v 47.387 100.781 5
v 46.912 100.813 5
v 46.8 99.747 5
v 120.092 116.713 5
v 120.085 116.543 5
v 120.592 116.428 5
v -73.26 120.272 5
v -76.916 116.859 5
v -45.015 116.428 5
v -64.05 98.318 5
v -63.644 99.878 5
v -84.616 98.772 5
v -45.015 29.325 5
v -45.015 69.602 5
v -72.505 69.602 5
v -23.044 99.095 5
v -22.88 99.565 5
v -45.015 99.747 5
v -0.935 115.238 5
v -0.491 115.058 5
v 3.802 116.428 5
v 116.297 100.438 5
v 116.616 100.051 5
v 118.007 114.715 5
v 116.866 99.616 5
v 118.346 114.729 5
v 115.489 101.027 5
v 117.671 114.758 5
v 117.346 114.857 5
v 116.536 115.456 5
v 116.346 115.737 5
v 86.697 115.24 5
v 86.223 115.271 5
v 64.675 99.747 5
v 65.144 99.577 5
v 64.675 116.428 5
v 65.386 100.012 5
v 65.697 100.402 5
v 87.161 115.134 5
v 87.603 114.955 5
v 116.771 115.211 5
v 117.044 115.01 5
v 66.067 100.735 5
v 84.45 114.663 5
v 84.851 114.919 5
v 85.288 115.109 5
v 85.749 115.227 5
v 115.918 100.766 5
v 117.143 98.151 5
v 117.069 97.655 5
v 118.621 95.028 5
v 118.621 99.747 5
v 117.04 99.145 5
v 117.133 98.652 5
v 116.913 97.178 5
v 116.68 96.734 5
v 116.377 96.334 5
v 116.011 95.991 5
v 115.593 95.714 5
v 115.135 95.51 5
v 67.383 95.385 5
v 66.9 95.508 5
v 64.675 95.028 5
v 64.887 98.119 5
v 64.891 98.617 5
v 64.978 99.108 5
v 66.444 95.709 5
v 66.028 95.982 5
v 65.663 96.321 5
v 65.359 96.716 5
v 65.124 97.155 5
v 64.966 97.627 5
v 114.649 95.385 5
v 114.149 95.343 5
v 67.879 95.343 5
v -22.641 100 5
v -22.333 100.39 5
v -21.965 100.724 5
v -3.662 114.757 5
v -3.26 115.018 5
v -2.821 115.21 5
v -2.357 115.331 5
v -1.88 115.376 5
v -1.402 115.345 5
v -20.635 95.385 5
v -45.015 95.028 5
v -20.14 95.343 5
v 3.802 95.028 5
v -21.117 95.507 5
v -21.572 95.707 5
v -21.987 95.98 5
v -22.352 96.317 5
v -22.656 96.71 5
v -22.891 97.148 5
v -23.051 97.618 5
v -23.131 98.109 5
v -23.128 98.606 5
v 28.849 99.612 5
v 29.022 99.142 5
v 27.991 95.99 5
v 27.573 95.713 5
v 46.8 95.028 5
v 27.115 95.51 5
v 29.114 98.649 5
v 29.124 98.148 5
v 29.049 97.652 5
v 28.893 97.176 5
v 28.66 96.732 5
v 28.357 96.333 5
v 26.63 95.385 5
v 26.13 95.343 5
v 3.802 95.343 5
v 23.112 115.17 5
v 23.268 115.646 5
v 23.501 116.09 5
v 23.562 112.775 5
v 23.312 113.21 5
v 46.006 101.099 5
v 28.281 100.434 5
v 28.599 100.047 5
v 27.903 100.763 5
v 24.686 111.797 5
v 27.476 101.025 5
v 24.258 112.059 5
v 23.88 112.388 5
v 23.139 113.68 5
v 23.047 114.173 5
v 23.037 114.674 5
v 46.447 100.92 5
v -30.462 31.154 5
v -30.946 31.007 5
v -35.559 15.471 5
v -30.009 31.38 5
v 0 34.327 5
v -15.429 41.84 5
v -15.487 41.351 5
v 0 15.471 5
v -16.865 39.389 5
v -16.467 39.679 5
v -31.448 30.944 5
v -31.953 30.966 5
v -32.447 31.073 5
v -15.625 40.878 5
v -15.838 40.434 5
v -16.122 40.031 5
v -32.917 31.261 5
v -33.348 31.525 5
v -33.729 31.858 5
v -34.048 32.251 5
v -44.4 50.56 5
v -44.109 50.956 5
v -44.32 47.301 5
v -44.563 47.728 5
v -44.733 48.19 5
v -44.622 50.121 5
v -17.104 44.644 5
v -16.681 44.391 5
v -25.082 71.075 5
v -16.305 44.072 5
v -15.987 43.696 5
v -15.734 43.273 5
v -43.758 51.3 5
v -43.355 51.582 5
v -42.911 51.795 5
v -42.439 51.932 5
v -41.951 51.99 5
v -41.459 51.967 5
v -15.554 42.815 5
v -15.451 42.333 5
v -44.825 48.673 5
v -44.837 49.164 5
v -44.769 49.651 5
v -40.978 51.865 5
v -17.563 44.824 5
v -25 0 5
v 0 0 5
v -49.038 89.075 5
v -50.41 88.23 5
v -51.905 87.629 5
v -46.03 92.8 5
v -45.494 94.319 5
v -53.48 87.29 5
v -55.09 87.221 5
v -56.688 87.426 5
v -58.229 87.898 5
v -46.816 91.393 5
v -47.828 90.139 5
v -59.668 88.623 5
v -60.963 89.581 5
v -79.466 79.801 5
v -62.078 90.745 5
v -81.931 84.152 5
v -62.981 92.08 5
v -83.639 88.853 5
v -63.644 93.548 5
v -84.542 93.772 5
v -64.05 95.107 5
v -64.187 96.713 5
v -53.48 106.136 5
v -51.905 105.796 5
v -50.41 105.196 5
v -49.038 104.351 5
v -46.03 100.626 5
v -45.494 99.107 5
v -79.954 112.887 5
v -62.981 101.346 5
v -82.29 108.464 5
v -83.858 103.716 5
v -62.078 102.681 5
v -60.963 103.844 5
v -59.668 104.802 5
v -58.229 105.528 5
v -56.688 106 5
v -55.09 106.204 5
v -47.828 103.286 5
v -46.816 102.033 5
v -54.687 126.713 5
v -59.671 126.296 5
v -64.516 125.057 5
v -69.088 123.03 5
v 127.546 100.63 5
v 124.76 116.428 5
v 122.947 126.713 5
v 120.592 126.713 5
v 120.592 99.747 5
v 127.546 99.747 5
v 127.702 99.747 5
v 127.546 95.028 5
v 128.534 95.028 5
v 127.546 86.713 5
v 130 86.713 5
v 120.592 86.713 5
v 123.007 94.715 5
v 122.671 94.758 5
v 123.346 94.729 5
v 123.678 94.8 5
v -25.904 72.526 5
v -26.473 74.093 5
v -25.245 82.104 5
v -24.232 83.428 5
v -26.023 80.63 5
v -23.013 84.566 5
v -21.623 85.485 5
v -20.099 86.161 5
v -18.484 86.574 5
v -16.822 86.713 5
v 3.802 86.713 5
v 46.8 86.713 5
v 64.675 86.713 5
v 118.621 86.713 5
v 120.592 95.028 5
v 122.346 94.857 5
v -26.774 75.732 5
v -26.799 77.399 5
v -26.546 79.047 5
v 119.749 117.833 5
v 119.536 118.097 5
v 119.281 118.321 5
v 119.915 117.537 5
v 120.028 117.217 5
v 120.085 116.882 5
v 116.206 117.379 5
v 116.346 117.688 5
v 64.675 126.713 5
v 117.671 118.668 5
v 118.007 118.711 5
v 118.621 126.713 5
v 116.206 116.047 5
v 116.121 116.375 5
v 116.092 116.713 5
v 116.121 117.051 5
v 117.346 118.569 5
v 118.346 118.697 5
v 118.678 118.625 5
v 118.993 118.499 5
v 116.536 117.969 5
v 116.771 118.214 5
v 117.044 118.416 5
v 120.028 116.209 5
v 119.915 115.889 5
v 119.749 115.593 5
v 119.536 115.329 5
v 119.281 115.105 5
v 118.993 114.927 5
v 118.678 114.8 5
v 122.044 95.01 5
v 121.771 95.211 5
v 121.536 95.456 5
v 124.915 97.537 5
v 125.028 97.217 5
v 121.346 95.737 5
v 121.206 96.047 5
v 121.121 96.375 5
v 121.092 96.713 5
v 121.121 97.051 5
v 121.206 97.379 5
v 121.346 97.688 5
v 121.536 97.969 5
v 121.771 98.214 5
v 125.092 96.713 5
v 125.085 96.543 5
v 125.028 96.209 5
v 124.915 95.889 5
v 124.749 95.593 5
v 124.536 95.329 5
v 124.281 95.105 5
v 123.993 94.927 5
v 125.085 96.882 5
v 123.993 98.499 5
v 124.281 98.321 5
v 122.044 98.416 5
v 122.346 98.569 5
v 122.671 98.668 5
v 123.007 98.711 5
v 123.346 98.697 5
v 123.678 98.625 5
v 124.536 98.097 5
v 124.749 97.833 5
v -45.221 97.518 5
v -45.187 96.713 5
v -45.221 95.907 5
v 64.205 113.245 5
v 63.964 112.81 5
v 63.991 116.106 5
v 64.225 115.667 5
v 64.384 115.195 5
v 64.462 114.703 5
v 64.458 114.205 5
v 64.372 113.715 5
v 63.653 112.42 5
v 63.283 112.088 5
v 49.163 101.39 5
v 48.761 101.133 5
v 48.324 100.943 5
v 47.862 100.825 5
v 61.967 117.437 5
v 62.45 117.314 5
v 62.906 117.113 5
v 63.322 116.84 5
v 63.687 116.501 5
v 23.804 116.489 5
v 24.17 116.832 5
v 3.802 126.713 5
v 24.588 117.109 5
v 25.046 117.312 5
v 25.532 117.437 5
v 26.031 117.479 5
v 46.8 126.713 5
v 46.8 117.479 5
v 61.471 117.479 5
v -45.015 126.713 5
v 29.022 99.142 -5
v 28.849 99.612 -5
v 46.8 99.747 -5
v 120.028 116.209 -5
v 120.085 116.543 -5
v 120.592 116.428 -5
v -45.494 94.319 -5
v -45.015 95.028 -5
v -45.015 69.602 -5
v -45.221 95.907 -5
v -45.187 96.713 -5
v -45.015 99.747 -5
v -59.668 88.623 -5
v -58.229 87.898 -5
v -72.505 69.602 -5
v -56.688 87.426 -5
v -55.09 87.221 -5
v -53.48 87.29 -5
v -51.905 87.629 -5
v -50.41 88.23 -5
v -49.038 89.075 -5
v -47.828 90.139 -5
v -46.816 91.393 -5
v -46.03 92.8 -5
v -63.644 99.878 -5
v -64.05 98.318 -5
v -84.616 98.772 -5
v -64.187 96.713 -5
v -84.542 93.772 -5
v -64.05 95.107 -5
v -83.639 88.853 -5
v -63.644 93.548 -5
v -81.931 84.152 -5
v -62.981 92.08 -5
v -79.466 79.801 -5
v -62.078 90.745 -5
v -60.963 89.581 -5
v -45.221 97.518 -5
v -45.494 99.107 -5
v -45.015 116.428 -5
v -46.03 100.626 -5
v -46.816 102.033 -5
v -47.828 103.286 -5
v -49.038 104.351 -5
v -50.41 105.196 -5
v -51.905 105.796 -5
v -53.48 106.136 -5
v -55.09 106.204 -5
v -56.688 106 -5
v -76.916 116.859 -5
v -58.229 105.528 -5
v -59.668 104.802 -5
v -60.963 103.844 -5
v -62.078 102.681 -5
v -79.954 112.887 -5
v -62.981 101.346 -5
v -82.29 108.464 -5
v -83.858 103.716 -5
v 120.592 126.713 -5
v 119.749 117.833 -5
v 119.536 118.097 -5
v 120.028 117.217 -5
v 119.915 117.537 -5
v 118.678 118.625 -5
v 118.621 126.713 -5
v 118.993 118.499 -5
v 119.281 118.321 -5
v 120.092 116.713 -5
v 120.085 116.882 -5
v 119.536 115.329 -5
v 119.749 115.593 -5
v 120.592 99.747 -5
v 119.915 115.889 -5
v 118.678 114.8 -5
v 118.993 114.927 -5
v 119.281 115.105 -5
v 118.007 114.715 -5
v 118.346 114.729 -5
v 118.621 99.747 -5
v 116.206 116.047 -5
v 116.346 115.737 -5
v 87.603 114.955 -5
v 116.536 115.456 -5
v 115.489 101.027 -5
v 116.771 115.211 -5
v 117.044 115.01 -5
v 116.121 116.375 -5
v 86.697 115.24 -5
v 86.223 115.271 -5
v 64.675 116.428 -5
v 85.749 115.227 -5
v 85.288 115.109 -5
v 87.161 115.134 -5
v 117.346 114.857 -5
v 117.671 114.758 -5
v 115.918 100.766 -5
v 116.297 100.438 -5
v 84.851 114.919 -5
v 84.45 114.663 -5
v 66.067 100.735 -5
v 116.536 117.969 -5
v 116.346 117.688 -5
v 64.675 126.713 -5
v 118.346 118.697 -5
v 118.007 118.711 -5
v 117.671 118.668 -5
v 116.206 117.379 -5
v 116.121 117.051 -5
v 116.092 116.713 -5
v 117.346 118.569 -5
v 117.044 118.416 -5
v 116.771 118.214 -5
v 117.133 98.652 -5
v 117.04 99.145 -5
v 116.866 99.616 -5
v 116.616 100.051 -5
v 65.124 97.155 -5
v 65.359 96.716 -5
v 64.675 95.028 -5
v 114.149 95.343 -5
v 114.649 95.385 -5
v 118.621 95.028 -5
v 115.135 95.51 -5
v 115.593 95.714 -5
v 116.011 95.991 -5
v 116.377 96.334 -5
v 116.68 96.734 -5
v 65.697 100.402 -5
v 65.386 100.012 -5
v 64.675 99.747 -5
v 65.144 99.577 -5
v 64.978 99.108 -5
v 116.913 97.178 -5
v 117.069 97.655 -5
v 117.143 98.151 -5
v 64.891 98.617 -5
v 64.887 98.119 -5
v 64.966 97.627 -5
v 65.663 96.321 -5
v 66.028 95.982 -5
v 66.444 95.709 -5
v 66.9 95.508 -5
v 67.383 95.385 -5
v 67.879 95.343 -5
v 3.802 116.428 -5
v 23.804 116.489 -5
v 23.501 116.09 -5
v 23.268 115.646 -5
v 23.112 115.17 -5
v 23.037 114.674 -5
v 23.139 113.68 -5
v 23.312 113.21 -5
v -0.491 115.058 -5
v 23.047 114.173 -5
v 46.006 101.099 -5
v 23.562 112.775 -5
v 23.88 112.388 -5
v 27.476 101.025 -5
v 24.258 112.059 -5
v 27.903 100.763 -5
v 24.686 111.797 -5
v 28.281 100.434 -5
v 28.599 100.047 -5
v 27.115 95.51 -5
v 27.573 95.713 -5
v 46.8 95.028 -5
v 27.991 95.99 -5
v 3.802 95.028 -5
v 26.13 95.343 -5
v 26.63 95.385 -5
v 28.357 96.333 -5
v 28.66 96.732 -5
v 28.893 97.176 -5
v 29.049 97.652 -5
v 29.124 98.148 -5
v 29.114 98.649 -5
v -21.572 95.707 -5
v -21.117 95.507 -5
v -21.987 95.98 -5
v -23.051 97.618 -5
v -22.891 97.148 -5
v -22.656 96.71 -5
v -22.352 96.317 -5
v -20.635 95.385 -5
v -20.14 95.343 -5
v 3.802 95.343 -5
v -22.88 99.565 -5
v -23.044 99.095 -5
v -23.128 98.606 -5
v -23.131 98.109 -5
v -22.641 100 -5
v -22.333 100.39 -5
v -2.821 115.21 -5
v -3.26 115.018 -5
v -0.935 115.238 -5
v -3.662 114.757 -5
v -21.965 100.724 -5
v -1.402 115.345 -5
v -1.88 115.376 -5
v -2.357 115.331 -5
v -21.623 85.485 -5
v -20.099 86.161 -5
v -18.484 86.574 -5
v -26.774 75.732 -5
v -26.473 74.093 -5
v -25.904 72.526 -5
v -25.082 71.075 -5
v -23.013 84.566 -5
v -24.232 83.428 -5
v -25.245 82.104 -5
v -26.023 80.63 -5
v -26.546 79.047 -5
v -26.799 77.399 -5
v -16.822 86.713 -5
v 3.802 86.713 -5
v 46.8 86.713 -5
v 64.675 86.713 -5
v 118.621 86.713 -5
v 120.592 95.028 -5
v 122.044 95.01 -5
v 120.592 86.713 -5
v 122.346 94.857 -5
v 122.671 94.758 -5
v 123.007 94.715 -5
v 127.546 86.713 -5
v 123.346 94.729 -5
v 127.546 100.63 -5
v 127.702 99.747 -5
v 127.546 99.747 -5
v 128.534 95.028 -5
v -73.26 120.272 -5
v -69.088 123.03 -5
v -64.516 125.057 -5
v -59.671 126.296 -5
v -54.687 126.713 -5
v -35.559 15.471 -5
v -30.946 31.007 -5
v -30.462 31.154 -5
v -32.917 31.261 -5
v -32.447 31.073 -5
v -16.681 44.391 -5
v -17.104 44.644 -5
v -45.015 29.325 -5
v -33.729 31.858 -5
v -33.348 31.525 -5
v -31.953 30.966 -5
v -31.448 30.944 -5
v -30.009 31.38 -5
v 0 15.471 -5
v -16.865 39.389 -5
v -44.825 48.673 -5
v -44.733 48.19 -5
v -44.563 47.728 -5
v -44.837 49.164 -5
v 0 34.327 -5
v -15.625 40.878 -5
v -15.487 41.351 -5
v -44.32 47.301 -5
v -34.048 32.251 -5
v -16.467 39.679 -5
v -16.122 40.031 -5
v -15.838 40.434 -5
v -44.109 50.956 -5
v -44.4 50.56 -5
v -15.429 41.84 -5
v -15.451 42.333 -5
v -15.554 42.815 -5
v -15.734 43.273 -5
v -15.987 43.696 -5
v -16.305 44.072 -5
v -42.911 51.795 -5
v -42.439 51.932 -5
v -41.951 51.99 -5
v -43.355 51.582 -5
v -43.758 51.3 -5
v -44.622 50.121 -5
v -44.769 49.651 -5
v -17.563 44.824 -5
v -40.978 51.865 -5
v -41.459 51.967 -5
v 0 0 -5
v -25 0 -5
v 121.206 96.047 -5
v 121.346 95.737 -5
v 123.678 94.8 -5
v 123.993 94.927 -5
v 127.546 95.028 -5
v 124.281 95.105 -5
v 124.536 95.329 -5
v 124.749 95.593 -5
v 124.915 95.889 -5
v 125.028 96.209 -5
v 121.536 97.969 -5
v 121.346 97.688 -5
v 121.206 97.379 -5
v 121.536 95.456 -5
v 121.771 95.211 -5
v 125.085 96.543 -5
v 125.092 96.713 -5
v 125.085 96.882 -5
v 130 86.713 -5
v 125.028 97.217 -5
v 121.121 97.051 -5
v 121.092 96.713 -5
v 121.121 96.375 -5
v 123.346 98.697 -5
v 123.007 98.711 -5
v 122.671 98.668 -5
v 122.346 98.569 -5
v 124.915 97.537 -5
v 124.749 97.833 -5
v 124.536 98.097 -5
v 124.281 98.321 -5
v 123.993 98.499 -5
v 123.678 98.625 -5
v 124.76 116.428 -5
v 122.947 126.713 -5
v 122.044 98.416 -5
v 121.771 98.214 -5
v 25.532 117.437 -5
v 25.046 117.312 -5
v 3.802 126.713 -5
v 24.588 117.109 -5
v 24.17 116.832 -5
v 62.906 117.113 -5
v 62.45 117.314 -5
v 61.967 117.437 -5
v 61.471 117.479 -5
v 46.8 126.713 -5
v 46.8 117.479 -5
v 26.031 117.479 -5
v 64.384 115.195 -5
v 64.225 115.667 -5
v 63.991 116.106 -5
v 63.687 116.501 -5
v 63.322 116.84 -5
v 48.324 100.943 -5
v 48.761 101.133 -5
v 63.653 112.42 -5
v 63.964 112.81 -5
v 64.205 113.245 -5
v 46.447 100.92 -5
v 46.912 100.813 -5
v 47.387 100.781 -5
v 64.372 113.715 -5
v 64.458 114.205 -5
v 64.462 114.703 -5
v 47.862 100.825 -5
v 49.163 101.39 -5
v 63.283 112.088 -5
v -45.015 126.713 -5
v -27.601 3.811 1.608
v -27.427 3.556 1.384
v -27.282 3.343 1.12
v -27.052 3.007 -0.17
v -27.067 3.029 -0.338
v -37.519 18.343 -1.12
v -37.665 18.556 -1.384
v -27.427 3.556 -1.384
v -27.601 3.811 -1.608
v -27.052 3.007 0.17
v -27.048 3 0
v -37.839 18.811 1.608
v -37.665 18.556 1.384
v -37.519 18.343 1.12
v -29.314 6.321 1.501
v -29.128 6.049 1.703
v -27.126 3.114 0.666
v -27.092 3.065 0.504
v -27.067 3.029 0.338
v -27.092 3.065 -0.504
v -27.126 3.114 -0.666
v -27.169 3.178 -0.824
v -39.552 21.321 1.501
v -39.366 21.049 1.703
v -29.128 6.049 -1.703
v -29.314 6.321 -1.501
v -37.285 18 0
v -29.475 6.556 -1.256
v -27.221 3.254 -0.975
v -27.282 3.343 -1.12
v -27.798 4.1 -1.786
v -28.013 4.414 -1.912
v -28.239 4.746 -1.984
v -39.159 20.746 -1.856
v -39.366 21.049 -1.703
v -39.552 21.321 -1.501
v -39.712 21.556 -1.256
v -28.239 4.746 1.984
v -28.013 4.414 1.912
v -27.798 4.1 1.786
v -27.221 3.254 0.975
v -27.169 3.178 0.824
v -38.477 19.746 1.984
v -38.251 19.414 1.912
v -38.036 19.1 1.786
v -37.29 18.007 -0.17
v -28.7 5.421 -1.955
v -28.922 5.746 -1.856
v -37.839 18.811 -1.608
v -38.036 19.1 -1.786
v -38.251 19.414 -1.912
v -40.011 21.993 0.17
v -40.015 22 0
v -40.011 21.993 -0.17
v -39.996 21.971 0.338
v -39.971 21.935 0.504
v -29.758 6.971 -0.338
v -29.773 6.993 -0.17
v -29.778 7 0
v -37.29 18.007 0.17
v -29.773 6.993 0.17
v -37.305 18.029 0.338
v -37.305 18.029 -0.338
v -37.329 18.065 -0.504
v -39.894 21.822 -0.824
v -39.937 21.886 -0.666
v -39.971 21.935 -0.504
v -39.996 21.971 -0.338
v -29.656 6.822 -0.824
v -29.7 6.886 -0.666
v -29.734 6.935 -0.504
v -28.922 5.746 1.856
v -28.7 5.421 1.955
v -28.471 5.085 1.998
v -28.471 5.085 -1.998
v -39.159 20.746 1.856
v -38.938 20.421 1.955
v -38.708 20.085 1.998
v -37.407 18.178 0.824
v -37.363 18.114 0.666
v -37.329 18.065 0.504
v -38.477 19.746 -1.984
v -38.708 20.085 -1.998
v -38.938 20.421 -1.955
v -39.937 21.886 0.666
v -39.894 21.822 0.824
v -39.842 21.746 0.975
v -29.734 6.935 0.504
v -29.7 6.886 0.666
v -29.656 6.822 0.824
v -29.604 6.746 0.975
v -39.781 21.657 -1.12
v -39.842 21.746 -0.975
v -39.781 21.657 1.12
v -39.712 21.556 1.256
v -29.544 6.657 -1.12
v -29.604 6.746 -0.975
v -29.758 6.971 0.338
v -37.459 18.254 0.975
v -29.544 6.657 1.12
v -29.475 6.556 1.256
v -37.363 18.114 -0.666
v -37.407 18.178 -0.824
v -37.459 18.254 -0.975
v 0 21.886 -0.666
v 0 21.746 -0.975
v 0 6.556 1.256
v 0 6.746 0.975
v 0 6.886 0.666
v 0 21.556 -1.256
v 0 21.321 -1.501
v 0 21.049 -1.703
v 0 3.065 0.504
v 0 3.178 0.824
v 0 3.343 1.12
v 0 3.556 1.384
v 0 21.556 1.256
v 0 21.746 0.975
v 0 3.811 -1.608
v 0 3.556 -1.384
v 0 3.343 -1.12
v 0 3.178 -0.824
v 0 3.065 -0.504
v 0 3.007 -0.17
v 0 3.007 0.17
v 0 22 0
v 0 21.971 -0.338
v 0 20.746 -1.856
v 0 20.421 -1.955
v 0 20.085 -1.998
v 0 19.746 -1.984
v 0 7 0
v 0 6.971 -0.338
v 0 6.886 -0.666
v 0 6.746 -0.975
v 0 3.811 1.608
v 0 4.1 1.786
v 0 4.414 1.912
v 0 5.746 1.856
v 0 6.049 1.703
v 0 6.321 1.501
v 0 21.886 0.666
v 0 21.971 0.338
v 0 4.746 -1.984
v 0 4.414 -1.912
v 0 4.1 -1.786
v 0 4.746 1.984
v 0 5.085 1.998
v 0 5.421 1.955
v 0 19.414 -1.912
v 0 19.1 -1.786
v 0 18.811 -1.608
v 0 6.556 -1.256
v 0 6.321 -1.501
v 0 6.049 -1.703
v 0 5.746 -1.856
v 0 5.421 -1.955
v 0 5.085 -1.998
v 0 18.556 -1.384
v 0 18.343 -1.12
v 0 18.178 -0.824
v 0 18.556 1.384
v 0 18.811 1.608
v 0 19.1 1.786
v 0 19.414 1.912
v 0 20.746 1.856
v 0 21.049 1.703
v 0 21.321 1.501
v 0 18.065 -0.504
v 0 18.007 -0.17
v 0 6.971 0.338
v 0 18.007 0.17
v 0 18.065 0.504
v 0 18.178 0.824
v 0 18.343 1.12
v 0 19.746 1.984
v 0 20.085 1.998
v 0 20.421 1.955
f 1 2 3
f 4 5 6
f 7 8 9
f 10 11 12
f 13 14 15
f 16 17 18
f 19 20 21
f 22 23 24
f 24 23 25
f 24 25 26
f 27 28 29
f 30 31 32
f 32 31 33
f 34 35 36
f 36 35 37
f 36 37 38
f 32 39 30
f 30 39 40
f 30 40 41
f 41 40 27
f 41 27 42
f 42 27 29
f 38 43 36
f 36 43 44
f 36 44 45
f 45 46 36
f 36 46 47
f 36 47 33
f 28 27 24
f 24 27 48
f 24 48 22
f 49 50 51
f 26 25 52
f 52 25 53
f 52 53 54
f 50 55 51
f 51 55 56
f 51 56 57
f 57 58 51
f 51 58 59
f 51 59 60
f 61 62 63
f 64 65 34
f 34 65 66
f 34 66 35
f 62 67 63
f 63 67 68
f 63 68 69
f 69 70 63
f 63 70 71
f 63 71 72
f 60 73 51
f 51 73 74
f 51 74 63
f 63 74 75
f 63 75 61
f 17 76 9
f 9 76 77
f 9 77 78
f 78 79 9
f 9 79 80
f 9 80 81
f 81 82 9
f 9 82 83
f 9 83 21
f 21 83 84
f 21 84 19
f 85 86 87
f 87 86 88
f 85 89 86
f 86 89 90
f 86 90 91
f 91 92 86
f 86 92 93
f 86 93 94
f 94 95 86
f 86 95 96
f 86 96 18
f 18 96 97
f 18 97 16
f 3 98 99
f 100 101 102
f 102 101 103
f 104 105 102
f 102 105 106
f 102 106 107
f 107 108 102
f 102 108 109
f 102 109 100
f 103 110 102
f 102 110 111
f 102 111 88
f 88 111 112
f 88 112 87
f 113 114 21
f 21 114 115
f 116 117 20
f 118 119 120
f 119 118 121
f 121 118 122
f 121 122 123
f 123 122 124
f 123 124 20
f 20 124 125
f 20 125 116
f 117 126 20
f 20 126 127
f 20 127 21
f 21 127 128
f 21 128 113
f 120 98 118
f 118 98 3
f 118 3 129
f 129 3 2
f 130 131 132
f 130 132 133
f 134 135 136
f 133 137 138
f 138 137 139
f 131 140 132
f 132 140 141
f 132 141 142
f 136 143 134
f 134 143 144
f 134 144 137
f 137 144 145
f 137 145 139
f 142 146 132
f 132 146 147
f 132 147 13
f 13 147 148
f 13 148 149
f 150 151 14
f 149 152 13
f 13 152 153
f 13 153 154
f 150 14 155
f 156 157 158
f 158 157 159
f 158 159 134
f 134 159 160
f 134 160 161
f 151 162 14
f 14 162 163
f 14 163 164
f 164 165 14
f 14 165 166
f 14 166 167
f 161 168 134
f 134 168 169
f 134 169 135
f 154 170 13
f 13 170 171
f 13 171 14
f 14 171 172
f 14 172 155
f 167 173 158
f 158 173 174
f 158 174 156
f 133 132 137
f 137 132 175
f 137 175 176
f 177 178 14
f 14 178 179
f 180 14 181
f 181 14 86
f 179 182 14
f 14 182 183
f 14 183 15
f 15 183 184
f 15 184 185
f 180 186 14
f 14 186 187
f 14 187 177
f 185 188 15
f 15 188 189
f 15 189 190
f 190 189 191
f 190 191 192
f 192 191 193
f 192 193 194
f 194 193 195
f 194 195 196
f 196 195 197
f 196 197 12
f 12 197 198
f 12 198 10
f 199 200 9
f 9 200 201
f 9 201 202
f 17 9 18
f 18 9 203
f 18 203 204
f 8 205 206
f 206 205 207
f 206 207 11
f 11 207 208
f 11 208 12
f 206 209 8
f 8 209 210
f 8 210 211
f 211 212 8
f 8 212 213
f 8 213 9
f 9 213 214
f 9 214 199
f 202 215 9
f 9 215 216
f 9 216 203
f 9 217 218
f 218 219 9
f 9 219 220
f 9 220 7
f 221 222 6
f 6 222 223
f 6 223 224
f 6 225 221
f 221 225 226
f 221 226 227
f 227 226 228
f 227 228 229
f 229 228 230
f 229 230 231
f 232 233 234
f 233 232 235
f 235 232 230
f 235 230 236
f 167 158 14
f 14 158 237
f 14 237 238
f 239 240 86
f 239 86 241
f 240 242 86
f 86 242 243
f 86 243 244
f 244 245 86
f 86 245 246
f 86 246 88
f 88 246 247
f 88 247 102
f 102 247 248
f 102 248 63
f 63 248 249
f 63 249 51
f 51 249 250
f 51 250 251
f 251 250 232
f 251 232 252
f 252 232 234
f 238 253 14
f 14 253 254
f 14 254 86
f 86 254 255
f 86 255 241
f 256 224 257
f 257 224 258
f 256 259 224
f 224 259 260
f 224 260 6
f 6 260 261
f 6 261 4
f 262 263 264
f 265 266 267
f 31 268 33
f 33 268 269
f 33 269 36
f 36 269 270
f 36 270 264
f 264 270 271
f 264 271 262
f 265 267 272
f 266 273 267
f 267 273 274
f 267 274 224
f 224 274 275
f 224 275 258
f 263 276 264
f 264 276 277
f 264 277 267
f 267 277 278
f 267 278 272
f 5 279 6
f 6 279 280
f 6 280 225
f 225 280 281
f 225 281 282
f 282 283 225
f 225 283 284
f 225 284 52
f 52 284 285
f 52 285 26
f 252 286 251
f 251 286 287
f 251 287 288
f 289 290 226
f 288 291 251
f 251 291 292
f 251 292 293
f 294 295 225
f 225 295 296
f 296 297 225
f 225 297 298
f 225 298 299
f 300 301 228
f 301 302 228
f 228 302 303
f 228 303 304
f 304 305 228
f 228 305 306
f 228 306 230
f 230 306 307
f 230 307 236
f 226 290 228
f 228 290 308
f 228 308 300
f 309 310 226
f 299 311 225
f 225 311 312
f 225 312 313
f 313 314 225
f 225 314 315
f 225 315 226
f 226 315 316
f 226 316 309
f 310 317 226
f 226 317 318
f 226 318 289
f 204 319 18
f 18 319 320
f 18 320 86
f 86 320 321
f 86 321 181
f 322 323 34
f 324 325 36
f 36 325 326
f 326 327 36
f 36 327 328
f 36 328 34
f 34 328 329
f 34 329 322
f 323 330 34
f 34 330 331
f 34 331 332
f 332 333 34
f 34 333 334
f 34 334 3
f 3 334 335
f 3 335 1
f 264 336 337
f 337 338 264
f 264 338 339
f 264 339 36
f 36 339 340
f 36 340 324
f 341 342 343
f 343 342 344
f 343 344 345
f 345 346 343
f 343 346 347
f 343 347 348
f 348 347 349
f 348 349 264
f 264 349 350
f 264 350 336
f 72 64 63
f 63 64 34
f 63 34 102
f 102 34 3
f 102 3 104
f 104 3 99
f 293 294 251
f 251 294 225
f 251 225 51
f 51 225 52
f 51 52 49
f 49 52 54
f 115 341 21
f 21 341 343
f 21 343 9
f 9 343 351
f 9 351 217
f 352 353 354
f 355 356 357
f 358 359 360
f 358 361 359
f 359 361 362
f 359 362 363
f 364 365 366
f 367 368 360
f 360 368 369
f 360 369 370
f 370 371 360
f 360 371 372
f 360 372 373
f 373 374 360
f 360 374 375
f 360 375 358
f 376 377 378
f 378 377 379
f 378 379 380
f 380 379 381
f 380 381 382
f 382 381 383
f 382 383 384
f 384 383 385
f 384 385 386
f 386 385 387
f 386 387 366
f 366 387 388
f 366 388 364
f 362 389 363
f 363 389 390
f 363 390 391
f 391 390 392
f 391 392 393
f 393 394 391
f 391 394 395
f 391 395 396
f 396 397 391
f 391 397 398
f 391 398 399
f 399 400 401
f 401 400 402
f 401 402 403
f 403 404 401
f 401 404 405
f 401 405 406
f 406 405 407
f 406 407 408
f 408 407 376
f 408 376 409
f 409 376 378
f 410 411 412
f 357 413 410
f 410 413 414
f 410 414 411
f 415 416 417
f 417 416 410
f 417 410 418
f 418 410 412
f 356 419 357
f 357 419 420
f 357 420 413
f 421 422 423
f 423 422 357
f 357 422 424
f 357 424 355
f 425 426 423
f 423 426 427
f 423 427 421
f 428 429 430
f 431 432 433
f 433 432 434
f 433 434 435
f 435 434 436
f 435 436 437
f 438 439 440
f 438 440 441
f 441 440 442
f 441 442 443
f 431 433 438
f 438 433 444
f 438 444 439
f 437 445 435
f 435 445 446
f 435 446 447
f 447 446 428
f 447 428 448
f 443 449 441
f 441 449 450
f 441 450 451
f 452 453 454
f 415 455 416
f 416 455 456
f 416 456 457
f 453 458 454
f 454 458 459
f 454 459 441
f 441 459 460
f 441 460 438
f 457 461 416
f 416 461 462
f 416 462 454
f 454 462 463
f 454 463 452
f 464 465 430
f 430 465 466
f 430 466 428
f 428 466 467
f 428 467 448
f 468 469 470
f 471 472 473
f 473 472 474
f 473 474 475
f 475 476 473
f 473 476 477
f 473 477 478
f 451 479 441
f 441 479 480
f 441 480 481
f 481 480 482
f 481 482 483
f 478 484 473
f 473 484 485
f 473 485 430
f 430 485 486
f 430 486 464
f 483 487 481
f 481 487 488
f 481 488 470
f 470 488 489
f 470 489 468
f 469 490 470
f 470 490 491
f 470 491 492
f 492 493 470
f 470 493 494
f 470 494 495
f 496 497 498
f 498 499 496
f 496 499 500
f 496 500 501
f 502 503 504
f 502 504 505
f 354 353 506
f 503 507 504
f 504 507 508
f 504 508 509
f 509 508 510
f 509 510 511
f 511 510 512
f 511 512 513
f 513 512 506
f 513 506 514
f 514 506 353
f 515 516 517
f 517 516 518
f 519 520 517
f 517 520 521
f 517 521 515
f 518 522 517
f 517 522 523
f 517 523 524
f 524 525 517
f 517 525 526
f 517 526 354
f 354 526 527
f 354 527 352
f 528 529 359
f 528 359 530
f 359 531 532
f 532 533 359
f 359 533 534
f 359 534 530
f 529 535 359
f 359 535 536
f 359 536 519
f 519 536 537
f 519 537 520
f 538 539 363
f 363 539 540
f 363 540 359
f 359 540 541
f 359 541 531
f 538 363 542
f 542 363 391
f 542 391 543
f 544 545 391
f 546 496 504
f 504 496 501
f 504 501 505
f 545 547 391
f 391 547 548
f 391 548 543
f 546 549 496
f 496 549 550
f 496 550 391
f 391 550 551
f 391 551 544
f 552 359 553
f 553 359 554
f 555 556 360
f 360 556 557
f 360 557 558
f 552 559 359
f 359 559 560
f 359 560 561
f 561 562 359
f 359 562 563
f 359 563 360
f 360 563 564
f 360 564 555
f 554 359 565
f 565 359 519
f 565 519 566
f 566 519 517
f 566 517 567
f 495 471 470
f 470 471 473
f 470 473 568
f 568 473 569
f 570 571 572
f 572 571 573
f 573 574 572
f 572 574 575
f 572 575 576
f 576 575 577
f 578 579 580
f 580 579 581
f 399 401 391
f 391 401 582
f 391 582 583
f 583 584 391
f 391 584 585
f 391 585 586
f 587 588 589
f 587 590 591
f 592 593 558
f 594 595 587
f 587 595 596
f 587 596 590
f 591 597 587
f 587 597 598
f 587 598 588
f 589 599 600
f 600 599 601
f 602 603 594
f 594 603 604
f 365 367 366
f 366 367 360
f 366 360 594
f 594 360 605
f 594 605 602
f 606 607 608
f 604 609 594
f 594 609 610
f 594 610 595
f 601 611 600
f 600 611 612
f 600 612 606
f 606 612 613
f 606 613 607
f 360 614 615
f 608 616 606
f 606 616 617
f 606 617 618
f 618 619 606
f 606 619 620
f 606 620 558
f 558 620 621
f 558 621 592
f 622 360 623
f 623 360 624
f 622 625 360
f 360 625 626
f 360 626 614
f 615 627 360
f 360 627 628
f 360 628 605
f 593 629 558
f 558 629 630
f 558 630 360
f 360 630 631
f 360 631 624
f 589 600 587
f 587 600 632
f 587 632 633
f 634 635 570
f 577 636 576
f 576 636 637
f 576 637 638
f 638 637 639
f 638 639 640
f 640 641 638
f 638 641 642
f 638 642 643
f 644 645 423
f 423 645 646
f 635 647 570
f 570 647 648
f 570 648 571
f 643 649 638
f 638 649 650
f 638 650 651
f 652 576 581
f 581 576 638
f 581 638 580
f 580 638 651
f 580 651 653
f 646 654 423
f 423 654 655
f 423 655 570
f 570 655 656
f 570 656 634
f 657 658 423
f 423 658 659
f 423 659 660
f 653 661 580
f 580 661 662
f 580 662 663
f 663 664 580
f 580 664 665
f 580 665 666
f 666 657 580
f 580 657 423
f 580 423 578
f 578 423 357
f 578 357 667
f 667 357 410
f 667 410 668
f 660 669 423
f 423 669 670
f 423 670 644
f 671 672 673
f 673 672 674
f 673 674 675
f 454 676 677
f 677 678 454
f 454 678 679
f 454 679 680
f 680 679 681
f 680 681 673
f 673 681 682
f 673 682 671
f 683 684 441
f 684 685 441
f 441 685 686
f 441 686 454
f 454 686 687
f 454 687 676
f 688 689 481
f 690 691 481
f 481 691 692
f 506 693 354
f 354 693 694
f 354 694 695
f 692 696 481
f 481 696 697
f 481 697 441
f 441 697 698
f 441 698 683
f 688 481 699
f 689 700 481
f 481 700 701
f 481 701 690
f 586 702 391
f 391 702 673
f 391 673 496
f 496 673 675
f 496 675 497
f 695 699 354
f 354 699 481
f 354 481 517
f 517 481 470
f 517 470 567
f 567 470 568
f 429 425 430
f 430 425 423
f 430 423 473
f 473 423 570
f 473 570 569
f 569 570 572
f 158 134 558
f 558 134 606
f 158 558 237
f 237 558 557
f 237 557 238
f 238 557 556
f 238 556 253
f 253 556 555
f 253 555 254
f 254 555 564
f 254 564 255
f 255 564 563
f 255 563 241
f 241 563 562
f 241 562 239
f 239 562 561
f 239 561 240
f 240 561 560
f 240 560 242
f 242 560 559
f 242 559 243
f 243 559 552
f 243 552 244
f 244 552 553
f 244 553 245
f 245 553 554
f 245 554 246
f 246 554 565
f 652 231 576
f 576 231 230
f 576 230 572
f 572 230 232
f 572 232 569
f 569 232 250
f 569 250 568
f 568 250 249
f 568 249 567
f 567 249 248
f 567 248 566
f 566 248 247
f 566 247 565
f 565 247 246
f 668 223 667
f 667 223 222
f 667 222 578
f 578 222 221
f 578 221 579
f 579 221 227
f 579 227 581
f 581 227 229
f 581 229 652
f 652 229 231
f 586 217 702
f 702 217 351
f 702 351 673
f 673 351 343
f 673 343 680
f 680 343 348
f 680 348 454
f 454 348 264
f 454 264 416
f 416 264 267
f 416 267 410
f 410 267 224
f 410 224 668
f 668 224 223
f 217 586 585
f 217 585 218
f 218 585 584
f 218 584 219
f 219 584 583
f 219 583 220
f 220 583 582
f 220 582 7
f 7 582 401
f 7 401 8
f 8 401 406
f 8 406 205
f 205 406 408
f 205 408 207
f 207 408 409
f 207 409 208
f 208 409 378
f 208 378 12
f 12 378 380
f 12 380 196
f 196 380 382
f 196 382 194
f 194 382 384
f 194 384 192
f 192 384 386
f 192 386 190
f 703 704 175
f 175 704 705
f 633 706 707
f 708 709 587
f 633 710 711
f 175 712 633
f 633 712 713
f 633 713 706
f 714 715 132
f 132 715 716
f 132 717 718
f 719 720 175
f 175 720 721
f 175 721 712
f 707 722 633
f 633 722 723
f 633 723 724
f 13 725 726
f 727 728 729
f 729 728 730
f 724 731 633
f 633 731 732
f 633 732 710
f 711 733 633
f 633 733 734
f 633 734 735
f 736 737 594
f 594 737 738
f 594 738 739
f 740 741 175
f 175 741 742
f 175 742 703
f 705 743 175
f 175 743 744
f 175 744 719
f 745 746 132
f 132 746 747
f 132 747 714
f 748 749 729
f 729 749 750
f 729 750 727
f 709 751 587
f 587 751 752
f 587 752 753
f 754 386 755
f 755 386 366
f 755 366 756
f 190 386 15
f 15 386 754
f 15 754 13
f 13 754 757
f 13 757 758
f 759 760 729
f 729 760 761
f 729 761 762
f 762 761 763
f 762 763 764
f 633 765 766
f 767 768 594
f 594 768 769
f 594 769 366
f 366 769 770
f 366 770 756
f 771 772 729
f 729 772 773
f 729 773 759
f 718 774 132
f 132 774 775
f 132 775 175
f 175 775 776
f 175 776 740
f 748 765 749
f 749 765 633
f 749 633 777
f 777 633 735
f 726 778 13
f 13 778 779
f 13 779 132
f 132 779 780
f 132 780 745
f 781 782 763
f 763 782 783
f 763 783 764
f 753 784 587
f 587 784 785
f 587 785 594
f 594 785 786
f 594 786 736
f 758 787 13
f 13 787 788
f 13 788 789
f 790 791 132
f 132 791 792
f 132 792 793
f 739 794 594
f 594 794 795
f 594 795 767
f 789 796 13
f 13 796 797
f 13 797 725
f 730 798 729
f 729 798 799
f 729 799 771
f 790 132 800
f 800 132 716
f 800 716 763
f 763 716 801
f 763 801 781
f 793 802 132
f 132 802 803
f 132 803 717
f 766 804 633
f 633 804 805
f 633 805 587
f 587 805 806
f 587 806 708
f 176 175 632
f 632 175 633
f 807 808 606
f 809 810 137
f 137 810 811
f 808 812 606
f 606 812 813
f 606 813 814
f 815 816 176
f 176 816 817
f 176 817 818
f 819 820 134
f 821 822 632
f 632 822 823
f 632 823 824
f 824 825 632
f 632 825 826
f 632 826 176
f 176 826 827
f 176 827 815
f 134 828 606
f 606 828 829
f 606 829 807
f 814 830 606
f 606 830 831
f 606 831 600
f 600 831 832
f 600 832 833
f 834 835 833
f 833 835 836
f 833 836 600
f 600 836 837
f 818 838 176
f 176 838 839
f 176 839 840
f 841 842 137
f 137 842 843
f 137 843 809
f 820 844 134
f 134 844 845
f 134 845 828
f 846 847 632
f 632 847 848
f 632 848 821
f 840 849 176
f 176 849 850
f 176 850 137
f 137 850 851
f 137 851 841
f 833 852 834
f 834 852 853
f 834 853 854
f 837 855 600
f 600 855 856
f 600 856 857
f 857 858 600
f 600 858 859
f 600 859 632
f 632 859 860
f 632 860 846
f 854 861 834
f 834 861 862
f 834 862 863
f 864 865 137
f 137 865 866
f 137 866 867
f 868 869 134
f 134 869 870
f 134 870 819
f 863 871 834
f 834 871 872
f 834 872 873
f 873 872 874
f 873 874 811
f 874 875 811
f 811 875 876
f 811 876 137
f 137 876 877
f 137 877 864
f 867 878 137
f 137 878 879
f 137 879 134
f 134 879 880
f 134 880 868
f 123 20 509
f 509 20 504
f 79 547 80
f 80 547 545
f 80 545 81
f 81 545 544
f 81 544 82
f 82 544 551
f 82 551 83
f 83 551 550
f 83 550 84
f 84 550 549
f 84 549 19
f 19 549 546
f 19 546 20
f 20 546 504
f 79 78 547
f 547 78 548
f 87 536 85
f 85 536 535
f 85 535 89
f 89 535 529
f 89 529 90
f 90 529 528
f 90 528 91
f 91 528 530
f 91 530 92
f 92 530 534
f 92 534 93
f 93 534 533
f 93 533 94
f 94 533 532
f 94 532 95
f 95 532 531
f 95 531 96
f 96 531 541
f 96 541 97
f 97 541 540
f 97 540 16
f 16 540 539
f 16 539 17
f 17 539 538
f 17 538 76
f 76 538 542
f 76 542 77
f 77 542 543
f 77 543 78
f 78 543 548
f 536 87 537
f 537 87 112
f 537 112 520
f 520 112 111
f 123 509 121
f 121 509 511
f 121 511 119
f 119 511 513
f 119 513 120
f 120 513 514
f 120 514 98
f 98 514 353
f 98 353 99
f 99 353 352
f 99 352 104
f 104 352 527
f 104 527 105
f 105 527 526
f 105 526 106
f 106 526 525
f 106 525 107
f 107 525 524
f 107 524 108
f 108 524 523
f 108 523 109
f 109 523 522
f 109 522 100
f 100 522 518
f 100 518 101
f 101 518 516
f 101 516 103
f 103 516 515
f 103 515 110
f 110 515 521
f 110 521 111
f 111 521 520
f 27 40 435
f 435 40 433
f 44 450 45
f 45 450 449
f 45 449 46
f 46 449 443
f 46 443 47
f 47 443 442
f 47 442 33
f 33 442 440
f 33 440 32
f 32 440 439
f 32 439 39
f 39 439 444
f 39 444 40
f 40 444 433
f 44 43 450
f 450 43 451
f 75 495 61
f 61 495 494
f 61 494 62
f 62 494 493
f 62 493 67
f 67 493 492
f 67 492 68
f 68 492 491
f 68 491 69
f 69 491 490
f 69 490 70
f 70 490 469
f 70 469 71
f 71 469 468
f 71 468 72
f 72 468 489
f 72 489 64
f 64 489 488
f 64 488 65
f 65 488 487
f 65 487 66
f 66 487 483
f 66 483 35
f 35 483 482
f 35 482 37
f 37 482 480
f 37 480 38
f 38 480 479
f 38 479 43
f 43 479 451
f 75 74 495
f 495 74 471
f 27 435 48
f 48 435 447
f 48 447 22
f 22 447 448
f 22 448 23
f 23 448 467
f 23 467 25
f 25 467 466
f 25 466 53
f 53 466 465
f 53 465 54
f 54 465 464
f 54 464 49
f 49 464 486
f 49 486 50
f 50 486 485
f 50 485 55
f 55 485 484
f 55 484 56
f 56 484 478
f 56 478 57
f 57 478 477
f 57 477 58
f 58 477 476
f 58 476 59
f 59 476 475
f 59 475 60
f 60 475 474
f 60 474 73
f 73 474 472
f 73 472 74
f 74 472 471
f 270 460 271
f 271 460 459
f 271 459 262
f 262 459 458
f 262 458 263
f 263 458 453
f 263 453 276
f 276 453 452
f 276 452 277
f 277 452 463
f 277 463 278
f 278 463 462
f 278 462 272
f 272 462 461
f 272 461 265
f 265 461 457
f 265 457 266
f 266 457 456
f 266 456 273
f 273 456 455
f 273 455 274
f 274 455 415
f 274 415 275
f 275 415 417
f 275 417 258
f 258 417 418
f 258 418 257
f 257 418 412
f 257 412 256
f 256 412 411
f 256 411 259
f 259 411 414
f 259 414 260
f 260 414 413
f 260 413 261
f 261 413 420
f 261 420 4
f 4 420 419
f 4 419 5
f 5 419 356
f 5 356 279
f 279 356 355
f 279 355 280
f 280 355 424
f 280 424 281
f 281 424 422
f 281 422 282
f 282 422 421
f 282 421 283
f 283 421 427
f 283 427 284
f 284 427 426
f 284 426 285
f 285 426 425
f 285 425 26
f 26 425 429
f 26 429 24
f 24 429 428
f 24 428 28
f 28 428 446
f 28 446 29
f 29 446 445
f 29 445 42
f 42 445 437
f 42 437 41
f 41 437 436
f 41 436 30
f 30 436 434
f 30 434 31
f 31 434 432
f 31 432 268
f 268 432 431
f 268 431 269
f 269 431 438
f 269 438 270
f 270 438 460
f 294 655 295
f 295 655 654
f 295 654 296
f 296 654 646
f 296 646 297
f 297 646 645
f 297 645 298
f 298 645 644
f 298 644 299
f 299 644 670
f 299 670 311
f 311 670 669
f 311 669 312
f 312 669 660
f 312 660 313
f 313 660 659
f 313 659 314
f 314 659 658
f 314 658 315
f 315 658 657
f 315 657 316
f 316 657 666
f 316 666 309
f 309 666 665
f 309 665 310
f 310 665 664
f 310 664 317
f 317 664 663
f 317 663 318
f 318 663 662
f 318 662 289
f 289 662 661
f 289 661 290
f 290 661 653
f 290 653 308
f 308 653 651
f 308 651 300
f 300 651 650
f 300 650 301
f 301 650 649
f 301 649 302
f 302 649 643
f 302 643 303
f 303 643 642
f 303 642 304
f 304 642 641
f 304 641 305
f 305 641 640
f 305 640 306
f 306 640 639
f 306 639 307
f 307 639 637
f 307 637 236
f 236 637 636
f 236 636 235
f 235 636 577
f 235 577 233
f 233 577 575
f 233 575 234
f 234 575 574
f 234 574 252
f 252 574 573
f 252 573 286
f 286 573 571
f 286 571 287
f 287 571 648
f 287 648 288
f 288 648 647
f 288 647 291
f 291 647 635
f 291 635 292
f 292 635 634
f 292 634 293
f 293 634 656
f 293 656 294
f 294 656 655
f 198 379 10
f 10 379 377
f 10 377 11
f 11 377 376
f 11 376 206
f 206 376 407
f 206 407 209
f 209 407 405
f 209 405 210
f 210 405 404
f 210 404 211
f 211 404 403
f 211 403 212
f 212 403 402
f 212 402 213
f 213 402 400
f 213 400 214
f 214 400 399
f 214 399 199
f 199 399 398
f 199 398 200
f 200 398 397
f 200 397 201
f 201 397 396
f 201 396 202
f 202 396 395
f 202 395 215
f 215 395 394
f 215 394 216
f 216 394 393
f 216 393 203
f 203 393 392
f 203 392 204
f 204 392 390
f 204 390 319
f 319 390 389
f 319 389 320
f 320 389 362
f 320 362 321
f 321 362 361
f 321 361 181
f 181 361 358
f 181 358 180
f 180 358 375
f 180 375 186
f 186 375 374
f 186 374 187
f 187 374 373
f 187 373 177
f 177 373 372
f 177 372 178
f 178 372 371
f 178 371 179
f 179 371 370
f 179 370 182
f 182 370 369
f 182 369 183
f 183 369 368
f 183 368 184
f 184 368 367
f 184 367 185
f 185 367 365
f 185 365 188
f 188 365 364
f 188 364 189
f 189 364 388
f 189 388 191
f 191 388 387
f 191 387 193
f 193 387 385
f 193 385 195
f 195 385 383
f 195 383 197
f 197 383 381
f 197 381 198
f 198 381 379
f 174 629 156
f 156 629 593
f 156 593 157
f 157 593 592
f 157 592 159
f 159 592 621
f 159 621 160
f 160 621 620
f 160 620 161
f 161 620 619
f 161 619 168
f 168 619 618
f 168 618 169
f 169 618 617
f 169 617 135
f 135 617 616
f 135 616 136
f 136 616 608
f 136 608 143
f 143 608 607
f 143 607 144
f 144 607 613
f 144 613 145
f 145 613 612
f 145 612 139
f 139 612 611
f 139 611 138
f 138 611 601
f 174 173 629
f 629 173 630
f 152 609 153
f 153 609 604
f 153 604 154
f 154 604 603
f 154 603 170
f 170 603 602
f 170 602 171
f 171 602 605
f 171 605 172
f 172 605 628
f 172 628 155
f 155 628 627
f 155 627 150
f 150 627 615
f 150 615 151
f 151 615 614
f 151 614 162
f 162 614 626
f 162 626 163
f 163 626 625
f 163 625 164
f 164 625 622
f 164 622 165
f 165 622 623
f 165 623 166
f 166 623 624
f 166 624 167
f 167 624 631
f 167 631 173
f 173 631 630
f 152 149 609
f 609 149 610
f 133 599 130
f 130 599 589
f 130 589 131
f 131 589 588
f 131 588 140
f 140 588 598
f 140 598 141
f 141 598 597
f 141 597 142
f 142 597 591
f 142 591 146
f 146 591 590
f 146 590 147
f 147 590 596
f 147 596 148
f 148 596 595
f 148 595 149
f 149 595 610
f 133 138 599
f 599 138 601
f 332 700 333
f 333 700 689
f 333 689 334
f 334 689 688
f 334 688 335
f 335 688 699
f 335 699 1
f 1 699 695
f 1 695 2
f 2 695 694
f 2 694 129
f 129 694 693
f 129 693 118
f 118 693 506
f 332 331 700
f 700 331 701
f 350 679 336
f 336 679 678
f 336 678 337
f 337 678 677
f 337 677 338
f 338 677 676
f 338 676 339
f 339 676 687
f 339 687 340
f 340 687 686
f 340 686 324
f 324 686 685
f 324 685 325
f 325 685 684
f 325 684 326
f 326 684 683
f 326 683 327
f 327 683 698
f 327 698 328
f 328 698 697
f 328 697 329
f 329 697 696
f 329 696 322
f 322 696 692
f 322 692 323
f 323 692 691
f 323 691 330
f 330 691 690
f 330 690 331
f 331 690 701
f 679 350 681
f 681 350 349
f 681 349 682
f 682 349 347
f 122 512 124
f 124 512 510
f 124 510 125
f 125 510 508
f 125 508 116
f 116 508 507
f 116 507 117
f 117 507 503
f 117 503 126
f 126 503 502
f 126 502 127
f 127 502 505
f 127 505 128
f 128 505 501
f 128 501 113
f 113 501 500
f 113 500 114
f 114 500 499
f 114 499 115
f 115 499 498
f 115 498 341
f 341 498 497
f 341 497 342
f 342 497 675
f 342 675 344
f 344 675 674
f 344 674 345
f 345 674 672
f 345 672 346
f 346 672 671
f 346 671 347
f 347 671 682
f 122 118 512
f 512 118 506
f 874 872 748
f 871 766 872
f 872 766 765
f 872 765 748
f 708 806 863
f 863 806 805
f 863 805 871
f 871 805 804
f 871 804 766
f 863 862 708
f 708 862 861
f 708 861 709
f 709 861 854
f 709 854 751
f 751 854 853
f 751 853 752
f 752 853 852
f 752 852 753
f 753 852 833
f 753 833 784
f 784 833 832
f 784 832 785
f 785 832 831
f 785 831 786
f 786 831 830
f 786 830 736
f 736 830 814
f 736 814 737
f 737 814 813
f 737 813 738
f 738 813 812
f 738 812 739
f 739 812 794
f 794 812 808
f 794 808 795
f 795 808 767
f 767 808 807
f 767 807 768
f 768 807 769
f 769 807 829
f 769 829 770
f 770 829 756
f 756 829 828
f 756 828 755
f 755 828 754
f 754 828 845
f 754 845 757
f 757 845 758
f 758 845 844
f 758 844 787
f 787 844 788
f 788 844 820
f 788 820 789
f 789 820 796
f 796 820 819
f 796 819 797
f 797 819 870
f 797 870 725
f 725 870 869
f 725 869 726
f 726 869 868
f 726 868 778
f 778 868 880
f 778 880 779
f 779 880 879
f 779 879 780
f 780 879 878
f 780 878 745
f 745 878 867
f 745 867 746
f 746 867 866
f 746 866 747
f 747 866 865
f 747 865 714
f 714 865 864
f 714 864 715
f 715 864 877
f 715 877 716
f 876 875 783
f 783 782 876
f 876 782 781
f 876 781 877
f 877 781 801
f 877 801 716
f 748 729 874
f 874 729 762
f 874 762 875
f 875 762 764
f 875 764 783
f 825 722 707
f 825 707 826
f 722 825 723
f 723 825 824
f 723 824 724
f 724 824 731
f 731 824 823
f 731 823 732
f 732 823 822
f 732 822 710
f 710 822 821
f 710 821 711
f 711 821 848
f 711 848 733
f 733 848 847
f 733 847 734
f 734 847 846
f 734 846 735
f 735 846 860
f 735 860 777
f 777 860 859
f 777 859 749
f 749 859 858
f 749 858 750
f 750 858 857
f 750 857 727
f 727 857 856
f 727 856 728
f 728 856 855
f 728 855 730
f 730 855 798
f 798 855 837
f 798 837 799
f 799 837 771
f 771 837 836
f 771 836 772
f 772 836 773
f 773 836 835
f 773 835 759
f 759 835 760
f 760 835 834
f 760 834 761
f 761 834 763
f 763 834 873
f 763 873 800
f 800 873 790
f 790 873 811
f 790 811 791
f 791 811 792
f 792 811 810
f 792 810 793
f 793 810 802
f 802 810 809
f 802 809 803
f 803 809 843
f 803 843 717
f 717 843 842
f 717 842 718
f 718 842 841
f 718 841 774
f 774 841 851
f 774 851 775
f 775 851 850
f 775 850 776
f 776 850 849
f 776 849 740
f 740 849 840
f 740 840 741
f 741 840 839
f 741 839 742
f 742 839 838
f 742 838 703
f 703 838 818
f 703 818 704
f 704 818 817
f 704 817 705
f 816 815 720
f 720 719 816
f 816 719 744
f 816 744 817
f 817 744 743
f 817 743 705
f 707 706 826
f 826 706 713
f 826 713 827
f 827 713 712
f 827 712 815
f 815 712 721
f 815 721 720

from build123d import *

# Parameters (mm, degrees)
SKETCH1_R           = 9.5
SKETCH1_R_2         = 2
BOSS_EXTRUDE2_DEPTH = 5
SKETCH2_R           = 2
CUT_EXTRUDE1_DEPTH  = 43.5


with BuildPart() as part:
    # Sketch1 → Boss-Extrude2 (new, symmetric)
    with BuildSketch(Plane.XY):
        with BuildLine():
            Line((0, 0), (-25, 0))
            Line((-25, 0), (-79.465738474, 79.800827522))
            ThreePointArc((-79.465738474, 79.800827522), (-81.213991187, 110.724247098), (-54.687026413, 126.712818196))
            Line((-54.687026413, 126.712818196), (122.946920772, 126.712818196))
            Line((122.946920772, 126.712818196), (130, 86.712818196))
            Line((130, 86.712818196), (-16.822273347, 86.712818196))
            ThreePointArc((-16.822273347, 86.712818196), (-25.664594939, 81.383294497), (-25.081844034, 71.075487971))
            Line((-25.081844034, 71.075487971), (0, 34.32666264))
            Line((0, 34.32666264), (0, 0))
        make_face()
        with Locations((-54.687026413, 96.712818196)):
            Circle(SKETCH1_R, mode=Mode.SUBTRACT)
        with Locations((118.092164461, 116.712818196)):
            Circle(SKETCH1_R_2, mode=Mode.SUBTRACT)
        with Locations((123.092164461, 96.712818196)):
            Circle(SKETCH1_R_2, mode=Mode.SUBTRACT)
        with BuildLine():
            Line((87.602603423, 114.955476372), (115.489324713, 101.027318395))
            ThreePointArc((115.489324713, 101.027318395), (117.068751792, 97.654829908), (114.148854559, 95.343451825))
            Line((114.148854559, 95.343451825), (67.87894889, 95.343451825))
            ThreePointArc((67.87894889, 95.343451825), (65.035223605, 97.387822973), (66.067251604, 100.734634156))
            Line((66.067251604, 100.734634156), (84.450435982, 114.662792133))
            ThreePointArc((84.450435982, 114.662792133), (85.984771107, 115.258760656), (87.602603423, 114.955476372))
        make_face(mode=Mode.SUBTRACT)
        with BuildLine():
            Line((-0.491145104, 115.057882008), (27.475527786, 101.02482381))
            ThreePointArc((27.475527786, 101.02482381), (29.049331009, 97.652118315), (26.130074601, 95.343451825))
            Line((26.130074601, 95.343451825), (-20.139831067, 95.343451825))
            ThreePointArc((-20.139831067, 95.343451825), (-22.980812237, 97.379695636), (-21.965173191, 100.724234497))
            Line((-21.965173191, 100.724234497), (-3.661940413, 114.757292695))
            ThreePointArc((-3.661940413, 114.757292695), (-2.119726939, 115.363119834), (-0.491145104, 115.057882008))
        make_face(mode=Mode.SUBTRACT)
        with BuildLine():
            Line((26.031042482, 117.478697139), (61.470853651, 117.478697139))
            ThreePointArc((61.470853651, 117.478697139), (64.314578937, 115.434325991), (63.282550938, 112.087514808))
            Line((63.282550938, 112.087514808), (49.162800513, 101.389579648))
            ThreePointArc((49.162800513, 101.389579648), (47.625690916, 100.793354809), (46.005650041, 101.099389994))
            Line((46.005650041, 101.099389994), (24.685589296, 111.797325153))
            ThreePointArc((24.685589296, 111.797325153), (23.111786073, 115.170030649), (26.031042482, 117.478697139))
        make_face(mode=Mode.SUBTRACT)
        with BuildLine():
            Line((-44.320136127, 47.300576318), (-34.048206361, 32.250592263))
            ThreePointArc((-34.048206361, 32.250592263), (-32.202518151, 31.009156908), (-30.009288975, 31.379929737))
            Line((-30.009288975, 31.379929737), (-16.865487004, 39.388981395))
            ThreePointArc((-16.865487004, 39.388981395), (-15.450916476, 42.332556513), (-17.56266475, 44.823773781))
            Line((-17.56266475, 44.823773781), (-40.978396488, 51.864706177))
            ThreePointArc((-40.978396488, 51.864706177), (-44.262816837, 50.76404185), (-44.320136127, 47.300576318))
        make_face(mode=Mode.SUBTRACT)
    extrude(amount=BOSS_EXTRUDE2_DEPTH, both=True)

    # Sketch2 → Cut-Extrude1 (cut, symmetric)
    with BuildSketch(Plane(origin=(0, 0, 0), x_dir=(0, 0, -1), z_dir=(1, 0, 0))):
        with Locations(Location((0, 5, 0), (0, 0, 90))):
            Circle(SKETCH2_R)
        with Locations(Location((0, 20, 0), (0, 0, 90))):
            Circle(SKETCH2_R)
    extrude(amount=CUT_EXTRUDE1_DEPTH, both=True, mode=Mode.SUBTRACT)


solid = part.part
